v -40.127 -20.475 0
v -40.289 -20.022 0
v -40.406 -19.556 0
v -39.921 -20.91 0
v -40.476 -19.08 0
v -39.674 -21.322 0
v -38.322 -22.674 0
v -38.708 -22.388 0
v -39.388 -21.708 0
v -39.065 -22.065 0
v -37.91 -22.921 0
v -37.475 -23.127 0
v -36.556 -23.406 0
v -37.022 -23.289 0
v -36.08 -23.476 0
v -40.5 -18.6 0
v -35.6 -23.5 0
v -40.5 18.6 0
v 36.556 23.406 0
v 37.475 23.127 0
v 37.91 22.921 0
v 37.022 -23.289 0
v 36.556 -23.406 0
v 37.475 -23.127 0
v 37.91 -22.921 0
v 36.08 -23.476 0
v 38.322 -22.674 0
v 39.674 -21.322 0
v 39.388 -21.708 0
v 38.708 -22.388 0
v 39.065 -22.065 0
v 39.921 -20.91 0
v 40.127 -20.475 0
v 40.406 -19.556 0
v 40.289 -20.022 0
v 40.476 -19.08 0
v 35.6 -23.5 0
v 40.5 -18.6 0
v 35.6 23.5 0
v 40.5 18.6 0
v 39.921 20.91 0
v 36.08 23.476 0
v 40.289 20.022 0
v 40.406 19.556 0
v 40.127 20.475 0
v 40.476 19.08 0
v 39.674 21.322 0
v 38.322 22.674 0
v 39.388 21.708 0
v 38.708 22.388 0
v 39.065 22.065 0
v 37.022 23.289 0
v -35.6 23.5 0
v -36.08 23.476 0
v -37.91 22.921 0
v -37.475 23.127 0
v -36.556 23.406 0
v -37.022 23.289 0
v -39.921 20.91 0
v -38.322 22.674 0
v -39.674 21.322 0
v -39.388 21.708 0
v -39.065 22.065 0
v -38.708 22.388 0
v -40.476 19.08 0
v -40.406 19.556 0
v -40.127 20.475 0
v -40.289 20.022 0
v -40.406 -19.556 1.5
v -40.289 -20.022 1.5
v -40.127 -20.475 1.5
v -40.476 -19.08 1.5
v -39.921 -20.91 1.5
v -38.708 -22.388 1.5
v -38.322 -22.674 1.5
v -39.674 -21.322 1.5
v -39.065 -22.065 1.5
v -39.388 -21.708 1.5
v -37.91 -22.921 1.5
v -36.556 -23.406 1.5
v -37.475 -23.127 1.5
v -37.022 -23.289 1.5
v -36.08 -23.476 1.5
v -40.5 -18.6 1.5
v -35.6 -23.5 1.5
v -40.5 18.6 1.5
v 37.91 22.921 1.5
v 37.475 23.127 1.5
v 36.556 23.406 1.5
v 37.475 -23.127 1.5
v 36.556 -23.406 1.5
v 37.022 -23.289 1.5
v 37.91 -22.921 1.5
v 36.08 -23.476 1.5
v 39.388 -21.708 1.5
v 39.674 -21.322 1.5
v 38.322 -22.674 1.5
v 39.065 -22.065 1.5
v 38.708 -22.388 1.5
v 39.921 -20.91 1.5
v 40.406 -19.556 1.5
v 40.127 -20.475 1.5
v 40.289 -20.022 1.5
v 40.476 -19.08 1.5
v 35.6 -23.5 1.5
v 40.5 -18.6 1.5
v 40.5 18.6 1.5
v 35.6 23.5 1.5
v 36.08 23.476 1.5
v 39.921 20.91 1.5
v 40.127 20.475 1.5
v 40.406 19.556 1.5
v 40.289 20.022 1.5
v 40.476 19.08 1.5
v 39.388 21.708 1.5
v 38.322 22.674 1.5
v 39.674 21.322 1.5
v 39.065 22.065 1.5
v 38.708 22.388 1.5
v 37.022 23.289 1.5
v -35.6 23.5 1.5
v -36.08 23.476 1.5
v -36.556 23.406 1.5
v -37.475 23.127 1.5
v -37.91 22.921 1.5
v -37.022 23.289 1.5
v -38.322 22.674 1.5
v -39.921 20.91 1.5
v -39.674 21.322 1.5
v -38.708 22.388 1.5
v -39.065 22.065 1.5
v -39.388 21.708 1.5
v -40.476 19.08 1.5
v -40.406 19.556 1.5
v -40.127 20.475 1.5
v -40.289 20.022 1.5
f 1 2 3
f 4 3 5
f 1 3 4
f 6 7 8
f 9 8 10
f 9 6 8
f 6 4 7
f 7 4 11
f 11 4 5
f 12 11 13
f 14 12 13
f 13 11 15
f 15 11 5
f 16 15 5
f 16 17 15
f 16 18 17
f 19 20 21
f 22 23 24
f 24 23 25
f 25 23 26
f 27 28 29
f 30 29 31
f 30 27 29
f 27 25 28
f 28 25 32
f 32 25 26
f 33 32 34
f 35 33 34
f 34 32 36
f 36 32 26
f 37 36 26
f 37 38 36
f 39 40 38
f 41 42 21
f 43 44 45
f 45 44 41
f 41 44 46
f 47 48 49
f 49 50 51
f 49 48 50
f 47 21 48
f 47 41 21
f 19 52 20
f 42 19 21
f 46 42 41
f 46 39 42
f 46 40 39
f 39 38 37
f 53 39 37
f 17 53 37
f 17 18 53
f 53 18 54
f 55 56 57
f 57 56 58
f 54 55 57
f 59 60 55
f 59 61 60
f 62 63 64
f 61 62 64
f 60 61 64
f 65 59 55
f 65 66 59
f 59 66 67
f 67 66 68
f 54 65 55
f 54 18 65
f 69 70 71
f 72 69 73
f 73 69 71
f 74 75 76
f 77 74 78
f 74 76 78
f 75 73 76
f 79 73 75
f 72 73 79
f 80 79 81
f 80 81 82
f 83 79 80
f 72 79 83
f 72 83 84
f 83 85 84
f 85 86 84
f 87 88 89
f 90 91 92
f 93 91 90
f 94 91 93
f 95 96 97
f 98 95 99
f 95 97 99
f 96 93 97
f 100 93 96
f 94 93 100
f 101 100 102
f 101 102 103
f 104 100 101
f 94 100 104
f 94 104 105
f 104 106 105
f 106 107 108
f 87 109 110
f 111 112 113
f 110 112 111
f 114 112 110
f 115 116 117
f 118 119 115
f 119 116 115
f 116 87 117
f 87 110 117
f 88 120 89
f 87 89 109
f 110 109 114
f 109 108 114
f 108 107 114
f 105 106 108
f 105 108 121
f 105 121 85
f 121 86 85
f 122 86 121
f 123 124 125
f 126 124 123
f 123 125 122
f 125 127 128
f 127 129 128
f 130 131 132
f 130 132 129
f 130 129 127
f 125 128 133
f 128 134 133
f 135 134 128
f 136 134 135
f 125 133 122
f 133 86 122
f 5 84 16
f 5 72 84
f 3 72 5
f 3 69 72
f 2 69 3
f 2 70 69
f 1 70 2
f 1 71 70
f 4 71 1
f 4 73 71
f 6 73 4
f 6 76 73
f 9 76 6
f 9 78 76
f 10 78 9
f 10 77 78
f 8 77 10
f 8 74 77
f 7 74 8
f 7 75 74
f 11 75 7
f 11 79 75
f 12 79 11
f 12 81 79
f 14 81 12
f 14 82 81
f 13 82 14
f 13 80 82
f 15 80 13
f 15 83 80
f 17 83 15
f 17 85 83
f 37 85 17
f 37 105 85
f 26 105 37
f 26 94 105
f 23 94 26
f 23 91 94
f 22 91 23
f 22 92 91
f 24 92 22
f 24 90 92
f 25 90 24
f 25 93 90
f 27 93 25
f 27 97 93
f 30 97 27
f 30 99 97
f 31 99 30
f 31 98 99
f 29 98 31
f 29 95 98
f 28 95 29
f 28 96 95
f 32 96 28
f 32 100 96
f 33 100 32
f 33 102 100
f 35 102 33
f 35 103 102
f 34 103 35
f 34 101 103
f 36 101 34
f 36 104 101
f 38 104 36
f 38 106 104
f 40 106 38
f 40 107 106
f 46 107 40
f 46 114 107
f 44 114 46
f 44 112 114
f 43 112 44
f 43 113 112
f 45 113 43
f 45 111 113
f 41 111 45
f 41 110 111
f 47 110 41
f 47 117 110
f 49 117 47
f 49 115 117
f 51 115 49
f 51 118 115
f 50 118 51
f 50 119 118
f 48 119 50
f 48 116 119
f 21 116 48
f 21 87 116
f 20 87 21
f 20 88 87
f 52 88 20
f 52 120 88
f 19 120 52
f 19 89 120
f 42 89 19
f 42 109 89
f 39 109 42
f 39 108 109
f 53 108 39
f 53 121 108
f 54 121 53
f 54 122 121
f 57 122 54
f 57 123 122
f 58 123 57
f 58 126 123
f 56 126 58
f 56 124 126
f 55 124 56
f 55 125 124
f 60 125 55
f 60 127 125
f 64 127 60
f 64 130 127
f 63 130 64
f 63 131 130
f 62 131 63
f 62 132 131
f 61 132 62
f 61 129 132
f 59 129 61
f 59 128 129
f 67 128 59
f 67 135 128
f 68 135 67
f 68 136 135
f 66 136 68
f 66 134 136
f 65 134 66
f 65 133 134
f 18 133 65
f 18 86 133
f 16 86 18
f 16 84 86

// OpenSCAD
/*
 * Dedicated export entrypoint for the smoked front lens insert.
 */

part_to_render_override = "LENS";
include <enclosure.scad>;
